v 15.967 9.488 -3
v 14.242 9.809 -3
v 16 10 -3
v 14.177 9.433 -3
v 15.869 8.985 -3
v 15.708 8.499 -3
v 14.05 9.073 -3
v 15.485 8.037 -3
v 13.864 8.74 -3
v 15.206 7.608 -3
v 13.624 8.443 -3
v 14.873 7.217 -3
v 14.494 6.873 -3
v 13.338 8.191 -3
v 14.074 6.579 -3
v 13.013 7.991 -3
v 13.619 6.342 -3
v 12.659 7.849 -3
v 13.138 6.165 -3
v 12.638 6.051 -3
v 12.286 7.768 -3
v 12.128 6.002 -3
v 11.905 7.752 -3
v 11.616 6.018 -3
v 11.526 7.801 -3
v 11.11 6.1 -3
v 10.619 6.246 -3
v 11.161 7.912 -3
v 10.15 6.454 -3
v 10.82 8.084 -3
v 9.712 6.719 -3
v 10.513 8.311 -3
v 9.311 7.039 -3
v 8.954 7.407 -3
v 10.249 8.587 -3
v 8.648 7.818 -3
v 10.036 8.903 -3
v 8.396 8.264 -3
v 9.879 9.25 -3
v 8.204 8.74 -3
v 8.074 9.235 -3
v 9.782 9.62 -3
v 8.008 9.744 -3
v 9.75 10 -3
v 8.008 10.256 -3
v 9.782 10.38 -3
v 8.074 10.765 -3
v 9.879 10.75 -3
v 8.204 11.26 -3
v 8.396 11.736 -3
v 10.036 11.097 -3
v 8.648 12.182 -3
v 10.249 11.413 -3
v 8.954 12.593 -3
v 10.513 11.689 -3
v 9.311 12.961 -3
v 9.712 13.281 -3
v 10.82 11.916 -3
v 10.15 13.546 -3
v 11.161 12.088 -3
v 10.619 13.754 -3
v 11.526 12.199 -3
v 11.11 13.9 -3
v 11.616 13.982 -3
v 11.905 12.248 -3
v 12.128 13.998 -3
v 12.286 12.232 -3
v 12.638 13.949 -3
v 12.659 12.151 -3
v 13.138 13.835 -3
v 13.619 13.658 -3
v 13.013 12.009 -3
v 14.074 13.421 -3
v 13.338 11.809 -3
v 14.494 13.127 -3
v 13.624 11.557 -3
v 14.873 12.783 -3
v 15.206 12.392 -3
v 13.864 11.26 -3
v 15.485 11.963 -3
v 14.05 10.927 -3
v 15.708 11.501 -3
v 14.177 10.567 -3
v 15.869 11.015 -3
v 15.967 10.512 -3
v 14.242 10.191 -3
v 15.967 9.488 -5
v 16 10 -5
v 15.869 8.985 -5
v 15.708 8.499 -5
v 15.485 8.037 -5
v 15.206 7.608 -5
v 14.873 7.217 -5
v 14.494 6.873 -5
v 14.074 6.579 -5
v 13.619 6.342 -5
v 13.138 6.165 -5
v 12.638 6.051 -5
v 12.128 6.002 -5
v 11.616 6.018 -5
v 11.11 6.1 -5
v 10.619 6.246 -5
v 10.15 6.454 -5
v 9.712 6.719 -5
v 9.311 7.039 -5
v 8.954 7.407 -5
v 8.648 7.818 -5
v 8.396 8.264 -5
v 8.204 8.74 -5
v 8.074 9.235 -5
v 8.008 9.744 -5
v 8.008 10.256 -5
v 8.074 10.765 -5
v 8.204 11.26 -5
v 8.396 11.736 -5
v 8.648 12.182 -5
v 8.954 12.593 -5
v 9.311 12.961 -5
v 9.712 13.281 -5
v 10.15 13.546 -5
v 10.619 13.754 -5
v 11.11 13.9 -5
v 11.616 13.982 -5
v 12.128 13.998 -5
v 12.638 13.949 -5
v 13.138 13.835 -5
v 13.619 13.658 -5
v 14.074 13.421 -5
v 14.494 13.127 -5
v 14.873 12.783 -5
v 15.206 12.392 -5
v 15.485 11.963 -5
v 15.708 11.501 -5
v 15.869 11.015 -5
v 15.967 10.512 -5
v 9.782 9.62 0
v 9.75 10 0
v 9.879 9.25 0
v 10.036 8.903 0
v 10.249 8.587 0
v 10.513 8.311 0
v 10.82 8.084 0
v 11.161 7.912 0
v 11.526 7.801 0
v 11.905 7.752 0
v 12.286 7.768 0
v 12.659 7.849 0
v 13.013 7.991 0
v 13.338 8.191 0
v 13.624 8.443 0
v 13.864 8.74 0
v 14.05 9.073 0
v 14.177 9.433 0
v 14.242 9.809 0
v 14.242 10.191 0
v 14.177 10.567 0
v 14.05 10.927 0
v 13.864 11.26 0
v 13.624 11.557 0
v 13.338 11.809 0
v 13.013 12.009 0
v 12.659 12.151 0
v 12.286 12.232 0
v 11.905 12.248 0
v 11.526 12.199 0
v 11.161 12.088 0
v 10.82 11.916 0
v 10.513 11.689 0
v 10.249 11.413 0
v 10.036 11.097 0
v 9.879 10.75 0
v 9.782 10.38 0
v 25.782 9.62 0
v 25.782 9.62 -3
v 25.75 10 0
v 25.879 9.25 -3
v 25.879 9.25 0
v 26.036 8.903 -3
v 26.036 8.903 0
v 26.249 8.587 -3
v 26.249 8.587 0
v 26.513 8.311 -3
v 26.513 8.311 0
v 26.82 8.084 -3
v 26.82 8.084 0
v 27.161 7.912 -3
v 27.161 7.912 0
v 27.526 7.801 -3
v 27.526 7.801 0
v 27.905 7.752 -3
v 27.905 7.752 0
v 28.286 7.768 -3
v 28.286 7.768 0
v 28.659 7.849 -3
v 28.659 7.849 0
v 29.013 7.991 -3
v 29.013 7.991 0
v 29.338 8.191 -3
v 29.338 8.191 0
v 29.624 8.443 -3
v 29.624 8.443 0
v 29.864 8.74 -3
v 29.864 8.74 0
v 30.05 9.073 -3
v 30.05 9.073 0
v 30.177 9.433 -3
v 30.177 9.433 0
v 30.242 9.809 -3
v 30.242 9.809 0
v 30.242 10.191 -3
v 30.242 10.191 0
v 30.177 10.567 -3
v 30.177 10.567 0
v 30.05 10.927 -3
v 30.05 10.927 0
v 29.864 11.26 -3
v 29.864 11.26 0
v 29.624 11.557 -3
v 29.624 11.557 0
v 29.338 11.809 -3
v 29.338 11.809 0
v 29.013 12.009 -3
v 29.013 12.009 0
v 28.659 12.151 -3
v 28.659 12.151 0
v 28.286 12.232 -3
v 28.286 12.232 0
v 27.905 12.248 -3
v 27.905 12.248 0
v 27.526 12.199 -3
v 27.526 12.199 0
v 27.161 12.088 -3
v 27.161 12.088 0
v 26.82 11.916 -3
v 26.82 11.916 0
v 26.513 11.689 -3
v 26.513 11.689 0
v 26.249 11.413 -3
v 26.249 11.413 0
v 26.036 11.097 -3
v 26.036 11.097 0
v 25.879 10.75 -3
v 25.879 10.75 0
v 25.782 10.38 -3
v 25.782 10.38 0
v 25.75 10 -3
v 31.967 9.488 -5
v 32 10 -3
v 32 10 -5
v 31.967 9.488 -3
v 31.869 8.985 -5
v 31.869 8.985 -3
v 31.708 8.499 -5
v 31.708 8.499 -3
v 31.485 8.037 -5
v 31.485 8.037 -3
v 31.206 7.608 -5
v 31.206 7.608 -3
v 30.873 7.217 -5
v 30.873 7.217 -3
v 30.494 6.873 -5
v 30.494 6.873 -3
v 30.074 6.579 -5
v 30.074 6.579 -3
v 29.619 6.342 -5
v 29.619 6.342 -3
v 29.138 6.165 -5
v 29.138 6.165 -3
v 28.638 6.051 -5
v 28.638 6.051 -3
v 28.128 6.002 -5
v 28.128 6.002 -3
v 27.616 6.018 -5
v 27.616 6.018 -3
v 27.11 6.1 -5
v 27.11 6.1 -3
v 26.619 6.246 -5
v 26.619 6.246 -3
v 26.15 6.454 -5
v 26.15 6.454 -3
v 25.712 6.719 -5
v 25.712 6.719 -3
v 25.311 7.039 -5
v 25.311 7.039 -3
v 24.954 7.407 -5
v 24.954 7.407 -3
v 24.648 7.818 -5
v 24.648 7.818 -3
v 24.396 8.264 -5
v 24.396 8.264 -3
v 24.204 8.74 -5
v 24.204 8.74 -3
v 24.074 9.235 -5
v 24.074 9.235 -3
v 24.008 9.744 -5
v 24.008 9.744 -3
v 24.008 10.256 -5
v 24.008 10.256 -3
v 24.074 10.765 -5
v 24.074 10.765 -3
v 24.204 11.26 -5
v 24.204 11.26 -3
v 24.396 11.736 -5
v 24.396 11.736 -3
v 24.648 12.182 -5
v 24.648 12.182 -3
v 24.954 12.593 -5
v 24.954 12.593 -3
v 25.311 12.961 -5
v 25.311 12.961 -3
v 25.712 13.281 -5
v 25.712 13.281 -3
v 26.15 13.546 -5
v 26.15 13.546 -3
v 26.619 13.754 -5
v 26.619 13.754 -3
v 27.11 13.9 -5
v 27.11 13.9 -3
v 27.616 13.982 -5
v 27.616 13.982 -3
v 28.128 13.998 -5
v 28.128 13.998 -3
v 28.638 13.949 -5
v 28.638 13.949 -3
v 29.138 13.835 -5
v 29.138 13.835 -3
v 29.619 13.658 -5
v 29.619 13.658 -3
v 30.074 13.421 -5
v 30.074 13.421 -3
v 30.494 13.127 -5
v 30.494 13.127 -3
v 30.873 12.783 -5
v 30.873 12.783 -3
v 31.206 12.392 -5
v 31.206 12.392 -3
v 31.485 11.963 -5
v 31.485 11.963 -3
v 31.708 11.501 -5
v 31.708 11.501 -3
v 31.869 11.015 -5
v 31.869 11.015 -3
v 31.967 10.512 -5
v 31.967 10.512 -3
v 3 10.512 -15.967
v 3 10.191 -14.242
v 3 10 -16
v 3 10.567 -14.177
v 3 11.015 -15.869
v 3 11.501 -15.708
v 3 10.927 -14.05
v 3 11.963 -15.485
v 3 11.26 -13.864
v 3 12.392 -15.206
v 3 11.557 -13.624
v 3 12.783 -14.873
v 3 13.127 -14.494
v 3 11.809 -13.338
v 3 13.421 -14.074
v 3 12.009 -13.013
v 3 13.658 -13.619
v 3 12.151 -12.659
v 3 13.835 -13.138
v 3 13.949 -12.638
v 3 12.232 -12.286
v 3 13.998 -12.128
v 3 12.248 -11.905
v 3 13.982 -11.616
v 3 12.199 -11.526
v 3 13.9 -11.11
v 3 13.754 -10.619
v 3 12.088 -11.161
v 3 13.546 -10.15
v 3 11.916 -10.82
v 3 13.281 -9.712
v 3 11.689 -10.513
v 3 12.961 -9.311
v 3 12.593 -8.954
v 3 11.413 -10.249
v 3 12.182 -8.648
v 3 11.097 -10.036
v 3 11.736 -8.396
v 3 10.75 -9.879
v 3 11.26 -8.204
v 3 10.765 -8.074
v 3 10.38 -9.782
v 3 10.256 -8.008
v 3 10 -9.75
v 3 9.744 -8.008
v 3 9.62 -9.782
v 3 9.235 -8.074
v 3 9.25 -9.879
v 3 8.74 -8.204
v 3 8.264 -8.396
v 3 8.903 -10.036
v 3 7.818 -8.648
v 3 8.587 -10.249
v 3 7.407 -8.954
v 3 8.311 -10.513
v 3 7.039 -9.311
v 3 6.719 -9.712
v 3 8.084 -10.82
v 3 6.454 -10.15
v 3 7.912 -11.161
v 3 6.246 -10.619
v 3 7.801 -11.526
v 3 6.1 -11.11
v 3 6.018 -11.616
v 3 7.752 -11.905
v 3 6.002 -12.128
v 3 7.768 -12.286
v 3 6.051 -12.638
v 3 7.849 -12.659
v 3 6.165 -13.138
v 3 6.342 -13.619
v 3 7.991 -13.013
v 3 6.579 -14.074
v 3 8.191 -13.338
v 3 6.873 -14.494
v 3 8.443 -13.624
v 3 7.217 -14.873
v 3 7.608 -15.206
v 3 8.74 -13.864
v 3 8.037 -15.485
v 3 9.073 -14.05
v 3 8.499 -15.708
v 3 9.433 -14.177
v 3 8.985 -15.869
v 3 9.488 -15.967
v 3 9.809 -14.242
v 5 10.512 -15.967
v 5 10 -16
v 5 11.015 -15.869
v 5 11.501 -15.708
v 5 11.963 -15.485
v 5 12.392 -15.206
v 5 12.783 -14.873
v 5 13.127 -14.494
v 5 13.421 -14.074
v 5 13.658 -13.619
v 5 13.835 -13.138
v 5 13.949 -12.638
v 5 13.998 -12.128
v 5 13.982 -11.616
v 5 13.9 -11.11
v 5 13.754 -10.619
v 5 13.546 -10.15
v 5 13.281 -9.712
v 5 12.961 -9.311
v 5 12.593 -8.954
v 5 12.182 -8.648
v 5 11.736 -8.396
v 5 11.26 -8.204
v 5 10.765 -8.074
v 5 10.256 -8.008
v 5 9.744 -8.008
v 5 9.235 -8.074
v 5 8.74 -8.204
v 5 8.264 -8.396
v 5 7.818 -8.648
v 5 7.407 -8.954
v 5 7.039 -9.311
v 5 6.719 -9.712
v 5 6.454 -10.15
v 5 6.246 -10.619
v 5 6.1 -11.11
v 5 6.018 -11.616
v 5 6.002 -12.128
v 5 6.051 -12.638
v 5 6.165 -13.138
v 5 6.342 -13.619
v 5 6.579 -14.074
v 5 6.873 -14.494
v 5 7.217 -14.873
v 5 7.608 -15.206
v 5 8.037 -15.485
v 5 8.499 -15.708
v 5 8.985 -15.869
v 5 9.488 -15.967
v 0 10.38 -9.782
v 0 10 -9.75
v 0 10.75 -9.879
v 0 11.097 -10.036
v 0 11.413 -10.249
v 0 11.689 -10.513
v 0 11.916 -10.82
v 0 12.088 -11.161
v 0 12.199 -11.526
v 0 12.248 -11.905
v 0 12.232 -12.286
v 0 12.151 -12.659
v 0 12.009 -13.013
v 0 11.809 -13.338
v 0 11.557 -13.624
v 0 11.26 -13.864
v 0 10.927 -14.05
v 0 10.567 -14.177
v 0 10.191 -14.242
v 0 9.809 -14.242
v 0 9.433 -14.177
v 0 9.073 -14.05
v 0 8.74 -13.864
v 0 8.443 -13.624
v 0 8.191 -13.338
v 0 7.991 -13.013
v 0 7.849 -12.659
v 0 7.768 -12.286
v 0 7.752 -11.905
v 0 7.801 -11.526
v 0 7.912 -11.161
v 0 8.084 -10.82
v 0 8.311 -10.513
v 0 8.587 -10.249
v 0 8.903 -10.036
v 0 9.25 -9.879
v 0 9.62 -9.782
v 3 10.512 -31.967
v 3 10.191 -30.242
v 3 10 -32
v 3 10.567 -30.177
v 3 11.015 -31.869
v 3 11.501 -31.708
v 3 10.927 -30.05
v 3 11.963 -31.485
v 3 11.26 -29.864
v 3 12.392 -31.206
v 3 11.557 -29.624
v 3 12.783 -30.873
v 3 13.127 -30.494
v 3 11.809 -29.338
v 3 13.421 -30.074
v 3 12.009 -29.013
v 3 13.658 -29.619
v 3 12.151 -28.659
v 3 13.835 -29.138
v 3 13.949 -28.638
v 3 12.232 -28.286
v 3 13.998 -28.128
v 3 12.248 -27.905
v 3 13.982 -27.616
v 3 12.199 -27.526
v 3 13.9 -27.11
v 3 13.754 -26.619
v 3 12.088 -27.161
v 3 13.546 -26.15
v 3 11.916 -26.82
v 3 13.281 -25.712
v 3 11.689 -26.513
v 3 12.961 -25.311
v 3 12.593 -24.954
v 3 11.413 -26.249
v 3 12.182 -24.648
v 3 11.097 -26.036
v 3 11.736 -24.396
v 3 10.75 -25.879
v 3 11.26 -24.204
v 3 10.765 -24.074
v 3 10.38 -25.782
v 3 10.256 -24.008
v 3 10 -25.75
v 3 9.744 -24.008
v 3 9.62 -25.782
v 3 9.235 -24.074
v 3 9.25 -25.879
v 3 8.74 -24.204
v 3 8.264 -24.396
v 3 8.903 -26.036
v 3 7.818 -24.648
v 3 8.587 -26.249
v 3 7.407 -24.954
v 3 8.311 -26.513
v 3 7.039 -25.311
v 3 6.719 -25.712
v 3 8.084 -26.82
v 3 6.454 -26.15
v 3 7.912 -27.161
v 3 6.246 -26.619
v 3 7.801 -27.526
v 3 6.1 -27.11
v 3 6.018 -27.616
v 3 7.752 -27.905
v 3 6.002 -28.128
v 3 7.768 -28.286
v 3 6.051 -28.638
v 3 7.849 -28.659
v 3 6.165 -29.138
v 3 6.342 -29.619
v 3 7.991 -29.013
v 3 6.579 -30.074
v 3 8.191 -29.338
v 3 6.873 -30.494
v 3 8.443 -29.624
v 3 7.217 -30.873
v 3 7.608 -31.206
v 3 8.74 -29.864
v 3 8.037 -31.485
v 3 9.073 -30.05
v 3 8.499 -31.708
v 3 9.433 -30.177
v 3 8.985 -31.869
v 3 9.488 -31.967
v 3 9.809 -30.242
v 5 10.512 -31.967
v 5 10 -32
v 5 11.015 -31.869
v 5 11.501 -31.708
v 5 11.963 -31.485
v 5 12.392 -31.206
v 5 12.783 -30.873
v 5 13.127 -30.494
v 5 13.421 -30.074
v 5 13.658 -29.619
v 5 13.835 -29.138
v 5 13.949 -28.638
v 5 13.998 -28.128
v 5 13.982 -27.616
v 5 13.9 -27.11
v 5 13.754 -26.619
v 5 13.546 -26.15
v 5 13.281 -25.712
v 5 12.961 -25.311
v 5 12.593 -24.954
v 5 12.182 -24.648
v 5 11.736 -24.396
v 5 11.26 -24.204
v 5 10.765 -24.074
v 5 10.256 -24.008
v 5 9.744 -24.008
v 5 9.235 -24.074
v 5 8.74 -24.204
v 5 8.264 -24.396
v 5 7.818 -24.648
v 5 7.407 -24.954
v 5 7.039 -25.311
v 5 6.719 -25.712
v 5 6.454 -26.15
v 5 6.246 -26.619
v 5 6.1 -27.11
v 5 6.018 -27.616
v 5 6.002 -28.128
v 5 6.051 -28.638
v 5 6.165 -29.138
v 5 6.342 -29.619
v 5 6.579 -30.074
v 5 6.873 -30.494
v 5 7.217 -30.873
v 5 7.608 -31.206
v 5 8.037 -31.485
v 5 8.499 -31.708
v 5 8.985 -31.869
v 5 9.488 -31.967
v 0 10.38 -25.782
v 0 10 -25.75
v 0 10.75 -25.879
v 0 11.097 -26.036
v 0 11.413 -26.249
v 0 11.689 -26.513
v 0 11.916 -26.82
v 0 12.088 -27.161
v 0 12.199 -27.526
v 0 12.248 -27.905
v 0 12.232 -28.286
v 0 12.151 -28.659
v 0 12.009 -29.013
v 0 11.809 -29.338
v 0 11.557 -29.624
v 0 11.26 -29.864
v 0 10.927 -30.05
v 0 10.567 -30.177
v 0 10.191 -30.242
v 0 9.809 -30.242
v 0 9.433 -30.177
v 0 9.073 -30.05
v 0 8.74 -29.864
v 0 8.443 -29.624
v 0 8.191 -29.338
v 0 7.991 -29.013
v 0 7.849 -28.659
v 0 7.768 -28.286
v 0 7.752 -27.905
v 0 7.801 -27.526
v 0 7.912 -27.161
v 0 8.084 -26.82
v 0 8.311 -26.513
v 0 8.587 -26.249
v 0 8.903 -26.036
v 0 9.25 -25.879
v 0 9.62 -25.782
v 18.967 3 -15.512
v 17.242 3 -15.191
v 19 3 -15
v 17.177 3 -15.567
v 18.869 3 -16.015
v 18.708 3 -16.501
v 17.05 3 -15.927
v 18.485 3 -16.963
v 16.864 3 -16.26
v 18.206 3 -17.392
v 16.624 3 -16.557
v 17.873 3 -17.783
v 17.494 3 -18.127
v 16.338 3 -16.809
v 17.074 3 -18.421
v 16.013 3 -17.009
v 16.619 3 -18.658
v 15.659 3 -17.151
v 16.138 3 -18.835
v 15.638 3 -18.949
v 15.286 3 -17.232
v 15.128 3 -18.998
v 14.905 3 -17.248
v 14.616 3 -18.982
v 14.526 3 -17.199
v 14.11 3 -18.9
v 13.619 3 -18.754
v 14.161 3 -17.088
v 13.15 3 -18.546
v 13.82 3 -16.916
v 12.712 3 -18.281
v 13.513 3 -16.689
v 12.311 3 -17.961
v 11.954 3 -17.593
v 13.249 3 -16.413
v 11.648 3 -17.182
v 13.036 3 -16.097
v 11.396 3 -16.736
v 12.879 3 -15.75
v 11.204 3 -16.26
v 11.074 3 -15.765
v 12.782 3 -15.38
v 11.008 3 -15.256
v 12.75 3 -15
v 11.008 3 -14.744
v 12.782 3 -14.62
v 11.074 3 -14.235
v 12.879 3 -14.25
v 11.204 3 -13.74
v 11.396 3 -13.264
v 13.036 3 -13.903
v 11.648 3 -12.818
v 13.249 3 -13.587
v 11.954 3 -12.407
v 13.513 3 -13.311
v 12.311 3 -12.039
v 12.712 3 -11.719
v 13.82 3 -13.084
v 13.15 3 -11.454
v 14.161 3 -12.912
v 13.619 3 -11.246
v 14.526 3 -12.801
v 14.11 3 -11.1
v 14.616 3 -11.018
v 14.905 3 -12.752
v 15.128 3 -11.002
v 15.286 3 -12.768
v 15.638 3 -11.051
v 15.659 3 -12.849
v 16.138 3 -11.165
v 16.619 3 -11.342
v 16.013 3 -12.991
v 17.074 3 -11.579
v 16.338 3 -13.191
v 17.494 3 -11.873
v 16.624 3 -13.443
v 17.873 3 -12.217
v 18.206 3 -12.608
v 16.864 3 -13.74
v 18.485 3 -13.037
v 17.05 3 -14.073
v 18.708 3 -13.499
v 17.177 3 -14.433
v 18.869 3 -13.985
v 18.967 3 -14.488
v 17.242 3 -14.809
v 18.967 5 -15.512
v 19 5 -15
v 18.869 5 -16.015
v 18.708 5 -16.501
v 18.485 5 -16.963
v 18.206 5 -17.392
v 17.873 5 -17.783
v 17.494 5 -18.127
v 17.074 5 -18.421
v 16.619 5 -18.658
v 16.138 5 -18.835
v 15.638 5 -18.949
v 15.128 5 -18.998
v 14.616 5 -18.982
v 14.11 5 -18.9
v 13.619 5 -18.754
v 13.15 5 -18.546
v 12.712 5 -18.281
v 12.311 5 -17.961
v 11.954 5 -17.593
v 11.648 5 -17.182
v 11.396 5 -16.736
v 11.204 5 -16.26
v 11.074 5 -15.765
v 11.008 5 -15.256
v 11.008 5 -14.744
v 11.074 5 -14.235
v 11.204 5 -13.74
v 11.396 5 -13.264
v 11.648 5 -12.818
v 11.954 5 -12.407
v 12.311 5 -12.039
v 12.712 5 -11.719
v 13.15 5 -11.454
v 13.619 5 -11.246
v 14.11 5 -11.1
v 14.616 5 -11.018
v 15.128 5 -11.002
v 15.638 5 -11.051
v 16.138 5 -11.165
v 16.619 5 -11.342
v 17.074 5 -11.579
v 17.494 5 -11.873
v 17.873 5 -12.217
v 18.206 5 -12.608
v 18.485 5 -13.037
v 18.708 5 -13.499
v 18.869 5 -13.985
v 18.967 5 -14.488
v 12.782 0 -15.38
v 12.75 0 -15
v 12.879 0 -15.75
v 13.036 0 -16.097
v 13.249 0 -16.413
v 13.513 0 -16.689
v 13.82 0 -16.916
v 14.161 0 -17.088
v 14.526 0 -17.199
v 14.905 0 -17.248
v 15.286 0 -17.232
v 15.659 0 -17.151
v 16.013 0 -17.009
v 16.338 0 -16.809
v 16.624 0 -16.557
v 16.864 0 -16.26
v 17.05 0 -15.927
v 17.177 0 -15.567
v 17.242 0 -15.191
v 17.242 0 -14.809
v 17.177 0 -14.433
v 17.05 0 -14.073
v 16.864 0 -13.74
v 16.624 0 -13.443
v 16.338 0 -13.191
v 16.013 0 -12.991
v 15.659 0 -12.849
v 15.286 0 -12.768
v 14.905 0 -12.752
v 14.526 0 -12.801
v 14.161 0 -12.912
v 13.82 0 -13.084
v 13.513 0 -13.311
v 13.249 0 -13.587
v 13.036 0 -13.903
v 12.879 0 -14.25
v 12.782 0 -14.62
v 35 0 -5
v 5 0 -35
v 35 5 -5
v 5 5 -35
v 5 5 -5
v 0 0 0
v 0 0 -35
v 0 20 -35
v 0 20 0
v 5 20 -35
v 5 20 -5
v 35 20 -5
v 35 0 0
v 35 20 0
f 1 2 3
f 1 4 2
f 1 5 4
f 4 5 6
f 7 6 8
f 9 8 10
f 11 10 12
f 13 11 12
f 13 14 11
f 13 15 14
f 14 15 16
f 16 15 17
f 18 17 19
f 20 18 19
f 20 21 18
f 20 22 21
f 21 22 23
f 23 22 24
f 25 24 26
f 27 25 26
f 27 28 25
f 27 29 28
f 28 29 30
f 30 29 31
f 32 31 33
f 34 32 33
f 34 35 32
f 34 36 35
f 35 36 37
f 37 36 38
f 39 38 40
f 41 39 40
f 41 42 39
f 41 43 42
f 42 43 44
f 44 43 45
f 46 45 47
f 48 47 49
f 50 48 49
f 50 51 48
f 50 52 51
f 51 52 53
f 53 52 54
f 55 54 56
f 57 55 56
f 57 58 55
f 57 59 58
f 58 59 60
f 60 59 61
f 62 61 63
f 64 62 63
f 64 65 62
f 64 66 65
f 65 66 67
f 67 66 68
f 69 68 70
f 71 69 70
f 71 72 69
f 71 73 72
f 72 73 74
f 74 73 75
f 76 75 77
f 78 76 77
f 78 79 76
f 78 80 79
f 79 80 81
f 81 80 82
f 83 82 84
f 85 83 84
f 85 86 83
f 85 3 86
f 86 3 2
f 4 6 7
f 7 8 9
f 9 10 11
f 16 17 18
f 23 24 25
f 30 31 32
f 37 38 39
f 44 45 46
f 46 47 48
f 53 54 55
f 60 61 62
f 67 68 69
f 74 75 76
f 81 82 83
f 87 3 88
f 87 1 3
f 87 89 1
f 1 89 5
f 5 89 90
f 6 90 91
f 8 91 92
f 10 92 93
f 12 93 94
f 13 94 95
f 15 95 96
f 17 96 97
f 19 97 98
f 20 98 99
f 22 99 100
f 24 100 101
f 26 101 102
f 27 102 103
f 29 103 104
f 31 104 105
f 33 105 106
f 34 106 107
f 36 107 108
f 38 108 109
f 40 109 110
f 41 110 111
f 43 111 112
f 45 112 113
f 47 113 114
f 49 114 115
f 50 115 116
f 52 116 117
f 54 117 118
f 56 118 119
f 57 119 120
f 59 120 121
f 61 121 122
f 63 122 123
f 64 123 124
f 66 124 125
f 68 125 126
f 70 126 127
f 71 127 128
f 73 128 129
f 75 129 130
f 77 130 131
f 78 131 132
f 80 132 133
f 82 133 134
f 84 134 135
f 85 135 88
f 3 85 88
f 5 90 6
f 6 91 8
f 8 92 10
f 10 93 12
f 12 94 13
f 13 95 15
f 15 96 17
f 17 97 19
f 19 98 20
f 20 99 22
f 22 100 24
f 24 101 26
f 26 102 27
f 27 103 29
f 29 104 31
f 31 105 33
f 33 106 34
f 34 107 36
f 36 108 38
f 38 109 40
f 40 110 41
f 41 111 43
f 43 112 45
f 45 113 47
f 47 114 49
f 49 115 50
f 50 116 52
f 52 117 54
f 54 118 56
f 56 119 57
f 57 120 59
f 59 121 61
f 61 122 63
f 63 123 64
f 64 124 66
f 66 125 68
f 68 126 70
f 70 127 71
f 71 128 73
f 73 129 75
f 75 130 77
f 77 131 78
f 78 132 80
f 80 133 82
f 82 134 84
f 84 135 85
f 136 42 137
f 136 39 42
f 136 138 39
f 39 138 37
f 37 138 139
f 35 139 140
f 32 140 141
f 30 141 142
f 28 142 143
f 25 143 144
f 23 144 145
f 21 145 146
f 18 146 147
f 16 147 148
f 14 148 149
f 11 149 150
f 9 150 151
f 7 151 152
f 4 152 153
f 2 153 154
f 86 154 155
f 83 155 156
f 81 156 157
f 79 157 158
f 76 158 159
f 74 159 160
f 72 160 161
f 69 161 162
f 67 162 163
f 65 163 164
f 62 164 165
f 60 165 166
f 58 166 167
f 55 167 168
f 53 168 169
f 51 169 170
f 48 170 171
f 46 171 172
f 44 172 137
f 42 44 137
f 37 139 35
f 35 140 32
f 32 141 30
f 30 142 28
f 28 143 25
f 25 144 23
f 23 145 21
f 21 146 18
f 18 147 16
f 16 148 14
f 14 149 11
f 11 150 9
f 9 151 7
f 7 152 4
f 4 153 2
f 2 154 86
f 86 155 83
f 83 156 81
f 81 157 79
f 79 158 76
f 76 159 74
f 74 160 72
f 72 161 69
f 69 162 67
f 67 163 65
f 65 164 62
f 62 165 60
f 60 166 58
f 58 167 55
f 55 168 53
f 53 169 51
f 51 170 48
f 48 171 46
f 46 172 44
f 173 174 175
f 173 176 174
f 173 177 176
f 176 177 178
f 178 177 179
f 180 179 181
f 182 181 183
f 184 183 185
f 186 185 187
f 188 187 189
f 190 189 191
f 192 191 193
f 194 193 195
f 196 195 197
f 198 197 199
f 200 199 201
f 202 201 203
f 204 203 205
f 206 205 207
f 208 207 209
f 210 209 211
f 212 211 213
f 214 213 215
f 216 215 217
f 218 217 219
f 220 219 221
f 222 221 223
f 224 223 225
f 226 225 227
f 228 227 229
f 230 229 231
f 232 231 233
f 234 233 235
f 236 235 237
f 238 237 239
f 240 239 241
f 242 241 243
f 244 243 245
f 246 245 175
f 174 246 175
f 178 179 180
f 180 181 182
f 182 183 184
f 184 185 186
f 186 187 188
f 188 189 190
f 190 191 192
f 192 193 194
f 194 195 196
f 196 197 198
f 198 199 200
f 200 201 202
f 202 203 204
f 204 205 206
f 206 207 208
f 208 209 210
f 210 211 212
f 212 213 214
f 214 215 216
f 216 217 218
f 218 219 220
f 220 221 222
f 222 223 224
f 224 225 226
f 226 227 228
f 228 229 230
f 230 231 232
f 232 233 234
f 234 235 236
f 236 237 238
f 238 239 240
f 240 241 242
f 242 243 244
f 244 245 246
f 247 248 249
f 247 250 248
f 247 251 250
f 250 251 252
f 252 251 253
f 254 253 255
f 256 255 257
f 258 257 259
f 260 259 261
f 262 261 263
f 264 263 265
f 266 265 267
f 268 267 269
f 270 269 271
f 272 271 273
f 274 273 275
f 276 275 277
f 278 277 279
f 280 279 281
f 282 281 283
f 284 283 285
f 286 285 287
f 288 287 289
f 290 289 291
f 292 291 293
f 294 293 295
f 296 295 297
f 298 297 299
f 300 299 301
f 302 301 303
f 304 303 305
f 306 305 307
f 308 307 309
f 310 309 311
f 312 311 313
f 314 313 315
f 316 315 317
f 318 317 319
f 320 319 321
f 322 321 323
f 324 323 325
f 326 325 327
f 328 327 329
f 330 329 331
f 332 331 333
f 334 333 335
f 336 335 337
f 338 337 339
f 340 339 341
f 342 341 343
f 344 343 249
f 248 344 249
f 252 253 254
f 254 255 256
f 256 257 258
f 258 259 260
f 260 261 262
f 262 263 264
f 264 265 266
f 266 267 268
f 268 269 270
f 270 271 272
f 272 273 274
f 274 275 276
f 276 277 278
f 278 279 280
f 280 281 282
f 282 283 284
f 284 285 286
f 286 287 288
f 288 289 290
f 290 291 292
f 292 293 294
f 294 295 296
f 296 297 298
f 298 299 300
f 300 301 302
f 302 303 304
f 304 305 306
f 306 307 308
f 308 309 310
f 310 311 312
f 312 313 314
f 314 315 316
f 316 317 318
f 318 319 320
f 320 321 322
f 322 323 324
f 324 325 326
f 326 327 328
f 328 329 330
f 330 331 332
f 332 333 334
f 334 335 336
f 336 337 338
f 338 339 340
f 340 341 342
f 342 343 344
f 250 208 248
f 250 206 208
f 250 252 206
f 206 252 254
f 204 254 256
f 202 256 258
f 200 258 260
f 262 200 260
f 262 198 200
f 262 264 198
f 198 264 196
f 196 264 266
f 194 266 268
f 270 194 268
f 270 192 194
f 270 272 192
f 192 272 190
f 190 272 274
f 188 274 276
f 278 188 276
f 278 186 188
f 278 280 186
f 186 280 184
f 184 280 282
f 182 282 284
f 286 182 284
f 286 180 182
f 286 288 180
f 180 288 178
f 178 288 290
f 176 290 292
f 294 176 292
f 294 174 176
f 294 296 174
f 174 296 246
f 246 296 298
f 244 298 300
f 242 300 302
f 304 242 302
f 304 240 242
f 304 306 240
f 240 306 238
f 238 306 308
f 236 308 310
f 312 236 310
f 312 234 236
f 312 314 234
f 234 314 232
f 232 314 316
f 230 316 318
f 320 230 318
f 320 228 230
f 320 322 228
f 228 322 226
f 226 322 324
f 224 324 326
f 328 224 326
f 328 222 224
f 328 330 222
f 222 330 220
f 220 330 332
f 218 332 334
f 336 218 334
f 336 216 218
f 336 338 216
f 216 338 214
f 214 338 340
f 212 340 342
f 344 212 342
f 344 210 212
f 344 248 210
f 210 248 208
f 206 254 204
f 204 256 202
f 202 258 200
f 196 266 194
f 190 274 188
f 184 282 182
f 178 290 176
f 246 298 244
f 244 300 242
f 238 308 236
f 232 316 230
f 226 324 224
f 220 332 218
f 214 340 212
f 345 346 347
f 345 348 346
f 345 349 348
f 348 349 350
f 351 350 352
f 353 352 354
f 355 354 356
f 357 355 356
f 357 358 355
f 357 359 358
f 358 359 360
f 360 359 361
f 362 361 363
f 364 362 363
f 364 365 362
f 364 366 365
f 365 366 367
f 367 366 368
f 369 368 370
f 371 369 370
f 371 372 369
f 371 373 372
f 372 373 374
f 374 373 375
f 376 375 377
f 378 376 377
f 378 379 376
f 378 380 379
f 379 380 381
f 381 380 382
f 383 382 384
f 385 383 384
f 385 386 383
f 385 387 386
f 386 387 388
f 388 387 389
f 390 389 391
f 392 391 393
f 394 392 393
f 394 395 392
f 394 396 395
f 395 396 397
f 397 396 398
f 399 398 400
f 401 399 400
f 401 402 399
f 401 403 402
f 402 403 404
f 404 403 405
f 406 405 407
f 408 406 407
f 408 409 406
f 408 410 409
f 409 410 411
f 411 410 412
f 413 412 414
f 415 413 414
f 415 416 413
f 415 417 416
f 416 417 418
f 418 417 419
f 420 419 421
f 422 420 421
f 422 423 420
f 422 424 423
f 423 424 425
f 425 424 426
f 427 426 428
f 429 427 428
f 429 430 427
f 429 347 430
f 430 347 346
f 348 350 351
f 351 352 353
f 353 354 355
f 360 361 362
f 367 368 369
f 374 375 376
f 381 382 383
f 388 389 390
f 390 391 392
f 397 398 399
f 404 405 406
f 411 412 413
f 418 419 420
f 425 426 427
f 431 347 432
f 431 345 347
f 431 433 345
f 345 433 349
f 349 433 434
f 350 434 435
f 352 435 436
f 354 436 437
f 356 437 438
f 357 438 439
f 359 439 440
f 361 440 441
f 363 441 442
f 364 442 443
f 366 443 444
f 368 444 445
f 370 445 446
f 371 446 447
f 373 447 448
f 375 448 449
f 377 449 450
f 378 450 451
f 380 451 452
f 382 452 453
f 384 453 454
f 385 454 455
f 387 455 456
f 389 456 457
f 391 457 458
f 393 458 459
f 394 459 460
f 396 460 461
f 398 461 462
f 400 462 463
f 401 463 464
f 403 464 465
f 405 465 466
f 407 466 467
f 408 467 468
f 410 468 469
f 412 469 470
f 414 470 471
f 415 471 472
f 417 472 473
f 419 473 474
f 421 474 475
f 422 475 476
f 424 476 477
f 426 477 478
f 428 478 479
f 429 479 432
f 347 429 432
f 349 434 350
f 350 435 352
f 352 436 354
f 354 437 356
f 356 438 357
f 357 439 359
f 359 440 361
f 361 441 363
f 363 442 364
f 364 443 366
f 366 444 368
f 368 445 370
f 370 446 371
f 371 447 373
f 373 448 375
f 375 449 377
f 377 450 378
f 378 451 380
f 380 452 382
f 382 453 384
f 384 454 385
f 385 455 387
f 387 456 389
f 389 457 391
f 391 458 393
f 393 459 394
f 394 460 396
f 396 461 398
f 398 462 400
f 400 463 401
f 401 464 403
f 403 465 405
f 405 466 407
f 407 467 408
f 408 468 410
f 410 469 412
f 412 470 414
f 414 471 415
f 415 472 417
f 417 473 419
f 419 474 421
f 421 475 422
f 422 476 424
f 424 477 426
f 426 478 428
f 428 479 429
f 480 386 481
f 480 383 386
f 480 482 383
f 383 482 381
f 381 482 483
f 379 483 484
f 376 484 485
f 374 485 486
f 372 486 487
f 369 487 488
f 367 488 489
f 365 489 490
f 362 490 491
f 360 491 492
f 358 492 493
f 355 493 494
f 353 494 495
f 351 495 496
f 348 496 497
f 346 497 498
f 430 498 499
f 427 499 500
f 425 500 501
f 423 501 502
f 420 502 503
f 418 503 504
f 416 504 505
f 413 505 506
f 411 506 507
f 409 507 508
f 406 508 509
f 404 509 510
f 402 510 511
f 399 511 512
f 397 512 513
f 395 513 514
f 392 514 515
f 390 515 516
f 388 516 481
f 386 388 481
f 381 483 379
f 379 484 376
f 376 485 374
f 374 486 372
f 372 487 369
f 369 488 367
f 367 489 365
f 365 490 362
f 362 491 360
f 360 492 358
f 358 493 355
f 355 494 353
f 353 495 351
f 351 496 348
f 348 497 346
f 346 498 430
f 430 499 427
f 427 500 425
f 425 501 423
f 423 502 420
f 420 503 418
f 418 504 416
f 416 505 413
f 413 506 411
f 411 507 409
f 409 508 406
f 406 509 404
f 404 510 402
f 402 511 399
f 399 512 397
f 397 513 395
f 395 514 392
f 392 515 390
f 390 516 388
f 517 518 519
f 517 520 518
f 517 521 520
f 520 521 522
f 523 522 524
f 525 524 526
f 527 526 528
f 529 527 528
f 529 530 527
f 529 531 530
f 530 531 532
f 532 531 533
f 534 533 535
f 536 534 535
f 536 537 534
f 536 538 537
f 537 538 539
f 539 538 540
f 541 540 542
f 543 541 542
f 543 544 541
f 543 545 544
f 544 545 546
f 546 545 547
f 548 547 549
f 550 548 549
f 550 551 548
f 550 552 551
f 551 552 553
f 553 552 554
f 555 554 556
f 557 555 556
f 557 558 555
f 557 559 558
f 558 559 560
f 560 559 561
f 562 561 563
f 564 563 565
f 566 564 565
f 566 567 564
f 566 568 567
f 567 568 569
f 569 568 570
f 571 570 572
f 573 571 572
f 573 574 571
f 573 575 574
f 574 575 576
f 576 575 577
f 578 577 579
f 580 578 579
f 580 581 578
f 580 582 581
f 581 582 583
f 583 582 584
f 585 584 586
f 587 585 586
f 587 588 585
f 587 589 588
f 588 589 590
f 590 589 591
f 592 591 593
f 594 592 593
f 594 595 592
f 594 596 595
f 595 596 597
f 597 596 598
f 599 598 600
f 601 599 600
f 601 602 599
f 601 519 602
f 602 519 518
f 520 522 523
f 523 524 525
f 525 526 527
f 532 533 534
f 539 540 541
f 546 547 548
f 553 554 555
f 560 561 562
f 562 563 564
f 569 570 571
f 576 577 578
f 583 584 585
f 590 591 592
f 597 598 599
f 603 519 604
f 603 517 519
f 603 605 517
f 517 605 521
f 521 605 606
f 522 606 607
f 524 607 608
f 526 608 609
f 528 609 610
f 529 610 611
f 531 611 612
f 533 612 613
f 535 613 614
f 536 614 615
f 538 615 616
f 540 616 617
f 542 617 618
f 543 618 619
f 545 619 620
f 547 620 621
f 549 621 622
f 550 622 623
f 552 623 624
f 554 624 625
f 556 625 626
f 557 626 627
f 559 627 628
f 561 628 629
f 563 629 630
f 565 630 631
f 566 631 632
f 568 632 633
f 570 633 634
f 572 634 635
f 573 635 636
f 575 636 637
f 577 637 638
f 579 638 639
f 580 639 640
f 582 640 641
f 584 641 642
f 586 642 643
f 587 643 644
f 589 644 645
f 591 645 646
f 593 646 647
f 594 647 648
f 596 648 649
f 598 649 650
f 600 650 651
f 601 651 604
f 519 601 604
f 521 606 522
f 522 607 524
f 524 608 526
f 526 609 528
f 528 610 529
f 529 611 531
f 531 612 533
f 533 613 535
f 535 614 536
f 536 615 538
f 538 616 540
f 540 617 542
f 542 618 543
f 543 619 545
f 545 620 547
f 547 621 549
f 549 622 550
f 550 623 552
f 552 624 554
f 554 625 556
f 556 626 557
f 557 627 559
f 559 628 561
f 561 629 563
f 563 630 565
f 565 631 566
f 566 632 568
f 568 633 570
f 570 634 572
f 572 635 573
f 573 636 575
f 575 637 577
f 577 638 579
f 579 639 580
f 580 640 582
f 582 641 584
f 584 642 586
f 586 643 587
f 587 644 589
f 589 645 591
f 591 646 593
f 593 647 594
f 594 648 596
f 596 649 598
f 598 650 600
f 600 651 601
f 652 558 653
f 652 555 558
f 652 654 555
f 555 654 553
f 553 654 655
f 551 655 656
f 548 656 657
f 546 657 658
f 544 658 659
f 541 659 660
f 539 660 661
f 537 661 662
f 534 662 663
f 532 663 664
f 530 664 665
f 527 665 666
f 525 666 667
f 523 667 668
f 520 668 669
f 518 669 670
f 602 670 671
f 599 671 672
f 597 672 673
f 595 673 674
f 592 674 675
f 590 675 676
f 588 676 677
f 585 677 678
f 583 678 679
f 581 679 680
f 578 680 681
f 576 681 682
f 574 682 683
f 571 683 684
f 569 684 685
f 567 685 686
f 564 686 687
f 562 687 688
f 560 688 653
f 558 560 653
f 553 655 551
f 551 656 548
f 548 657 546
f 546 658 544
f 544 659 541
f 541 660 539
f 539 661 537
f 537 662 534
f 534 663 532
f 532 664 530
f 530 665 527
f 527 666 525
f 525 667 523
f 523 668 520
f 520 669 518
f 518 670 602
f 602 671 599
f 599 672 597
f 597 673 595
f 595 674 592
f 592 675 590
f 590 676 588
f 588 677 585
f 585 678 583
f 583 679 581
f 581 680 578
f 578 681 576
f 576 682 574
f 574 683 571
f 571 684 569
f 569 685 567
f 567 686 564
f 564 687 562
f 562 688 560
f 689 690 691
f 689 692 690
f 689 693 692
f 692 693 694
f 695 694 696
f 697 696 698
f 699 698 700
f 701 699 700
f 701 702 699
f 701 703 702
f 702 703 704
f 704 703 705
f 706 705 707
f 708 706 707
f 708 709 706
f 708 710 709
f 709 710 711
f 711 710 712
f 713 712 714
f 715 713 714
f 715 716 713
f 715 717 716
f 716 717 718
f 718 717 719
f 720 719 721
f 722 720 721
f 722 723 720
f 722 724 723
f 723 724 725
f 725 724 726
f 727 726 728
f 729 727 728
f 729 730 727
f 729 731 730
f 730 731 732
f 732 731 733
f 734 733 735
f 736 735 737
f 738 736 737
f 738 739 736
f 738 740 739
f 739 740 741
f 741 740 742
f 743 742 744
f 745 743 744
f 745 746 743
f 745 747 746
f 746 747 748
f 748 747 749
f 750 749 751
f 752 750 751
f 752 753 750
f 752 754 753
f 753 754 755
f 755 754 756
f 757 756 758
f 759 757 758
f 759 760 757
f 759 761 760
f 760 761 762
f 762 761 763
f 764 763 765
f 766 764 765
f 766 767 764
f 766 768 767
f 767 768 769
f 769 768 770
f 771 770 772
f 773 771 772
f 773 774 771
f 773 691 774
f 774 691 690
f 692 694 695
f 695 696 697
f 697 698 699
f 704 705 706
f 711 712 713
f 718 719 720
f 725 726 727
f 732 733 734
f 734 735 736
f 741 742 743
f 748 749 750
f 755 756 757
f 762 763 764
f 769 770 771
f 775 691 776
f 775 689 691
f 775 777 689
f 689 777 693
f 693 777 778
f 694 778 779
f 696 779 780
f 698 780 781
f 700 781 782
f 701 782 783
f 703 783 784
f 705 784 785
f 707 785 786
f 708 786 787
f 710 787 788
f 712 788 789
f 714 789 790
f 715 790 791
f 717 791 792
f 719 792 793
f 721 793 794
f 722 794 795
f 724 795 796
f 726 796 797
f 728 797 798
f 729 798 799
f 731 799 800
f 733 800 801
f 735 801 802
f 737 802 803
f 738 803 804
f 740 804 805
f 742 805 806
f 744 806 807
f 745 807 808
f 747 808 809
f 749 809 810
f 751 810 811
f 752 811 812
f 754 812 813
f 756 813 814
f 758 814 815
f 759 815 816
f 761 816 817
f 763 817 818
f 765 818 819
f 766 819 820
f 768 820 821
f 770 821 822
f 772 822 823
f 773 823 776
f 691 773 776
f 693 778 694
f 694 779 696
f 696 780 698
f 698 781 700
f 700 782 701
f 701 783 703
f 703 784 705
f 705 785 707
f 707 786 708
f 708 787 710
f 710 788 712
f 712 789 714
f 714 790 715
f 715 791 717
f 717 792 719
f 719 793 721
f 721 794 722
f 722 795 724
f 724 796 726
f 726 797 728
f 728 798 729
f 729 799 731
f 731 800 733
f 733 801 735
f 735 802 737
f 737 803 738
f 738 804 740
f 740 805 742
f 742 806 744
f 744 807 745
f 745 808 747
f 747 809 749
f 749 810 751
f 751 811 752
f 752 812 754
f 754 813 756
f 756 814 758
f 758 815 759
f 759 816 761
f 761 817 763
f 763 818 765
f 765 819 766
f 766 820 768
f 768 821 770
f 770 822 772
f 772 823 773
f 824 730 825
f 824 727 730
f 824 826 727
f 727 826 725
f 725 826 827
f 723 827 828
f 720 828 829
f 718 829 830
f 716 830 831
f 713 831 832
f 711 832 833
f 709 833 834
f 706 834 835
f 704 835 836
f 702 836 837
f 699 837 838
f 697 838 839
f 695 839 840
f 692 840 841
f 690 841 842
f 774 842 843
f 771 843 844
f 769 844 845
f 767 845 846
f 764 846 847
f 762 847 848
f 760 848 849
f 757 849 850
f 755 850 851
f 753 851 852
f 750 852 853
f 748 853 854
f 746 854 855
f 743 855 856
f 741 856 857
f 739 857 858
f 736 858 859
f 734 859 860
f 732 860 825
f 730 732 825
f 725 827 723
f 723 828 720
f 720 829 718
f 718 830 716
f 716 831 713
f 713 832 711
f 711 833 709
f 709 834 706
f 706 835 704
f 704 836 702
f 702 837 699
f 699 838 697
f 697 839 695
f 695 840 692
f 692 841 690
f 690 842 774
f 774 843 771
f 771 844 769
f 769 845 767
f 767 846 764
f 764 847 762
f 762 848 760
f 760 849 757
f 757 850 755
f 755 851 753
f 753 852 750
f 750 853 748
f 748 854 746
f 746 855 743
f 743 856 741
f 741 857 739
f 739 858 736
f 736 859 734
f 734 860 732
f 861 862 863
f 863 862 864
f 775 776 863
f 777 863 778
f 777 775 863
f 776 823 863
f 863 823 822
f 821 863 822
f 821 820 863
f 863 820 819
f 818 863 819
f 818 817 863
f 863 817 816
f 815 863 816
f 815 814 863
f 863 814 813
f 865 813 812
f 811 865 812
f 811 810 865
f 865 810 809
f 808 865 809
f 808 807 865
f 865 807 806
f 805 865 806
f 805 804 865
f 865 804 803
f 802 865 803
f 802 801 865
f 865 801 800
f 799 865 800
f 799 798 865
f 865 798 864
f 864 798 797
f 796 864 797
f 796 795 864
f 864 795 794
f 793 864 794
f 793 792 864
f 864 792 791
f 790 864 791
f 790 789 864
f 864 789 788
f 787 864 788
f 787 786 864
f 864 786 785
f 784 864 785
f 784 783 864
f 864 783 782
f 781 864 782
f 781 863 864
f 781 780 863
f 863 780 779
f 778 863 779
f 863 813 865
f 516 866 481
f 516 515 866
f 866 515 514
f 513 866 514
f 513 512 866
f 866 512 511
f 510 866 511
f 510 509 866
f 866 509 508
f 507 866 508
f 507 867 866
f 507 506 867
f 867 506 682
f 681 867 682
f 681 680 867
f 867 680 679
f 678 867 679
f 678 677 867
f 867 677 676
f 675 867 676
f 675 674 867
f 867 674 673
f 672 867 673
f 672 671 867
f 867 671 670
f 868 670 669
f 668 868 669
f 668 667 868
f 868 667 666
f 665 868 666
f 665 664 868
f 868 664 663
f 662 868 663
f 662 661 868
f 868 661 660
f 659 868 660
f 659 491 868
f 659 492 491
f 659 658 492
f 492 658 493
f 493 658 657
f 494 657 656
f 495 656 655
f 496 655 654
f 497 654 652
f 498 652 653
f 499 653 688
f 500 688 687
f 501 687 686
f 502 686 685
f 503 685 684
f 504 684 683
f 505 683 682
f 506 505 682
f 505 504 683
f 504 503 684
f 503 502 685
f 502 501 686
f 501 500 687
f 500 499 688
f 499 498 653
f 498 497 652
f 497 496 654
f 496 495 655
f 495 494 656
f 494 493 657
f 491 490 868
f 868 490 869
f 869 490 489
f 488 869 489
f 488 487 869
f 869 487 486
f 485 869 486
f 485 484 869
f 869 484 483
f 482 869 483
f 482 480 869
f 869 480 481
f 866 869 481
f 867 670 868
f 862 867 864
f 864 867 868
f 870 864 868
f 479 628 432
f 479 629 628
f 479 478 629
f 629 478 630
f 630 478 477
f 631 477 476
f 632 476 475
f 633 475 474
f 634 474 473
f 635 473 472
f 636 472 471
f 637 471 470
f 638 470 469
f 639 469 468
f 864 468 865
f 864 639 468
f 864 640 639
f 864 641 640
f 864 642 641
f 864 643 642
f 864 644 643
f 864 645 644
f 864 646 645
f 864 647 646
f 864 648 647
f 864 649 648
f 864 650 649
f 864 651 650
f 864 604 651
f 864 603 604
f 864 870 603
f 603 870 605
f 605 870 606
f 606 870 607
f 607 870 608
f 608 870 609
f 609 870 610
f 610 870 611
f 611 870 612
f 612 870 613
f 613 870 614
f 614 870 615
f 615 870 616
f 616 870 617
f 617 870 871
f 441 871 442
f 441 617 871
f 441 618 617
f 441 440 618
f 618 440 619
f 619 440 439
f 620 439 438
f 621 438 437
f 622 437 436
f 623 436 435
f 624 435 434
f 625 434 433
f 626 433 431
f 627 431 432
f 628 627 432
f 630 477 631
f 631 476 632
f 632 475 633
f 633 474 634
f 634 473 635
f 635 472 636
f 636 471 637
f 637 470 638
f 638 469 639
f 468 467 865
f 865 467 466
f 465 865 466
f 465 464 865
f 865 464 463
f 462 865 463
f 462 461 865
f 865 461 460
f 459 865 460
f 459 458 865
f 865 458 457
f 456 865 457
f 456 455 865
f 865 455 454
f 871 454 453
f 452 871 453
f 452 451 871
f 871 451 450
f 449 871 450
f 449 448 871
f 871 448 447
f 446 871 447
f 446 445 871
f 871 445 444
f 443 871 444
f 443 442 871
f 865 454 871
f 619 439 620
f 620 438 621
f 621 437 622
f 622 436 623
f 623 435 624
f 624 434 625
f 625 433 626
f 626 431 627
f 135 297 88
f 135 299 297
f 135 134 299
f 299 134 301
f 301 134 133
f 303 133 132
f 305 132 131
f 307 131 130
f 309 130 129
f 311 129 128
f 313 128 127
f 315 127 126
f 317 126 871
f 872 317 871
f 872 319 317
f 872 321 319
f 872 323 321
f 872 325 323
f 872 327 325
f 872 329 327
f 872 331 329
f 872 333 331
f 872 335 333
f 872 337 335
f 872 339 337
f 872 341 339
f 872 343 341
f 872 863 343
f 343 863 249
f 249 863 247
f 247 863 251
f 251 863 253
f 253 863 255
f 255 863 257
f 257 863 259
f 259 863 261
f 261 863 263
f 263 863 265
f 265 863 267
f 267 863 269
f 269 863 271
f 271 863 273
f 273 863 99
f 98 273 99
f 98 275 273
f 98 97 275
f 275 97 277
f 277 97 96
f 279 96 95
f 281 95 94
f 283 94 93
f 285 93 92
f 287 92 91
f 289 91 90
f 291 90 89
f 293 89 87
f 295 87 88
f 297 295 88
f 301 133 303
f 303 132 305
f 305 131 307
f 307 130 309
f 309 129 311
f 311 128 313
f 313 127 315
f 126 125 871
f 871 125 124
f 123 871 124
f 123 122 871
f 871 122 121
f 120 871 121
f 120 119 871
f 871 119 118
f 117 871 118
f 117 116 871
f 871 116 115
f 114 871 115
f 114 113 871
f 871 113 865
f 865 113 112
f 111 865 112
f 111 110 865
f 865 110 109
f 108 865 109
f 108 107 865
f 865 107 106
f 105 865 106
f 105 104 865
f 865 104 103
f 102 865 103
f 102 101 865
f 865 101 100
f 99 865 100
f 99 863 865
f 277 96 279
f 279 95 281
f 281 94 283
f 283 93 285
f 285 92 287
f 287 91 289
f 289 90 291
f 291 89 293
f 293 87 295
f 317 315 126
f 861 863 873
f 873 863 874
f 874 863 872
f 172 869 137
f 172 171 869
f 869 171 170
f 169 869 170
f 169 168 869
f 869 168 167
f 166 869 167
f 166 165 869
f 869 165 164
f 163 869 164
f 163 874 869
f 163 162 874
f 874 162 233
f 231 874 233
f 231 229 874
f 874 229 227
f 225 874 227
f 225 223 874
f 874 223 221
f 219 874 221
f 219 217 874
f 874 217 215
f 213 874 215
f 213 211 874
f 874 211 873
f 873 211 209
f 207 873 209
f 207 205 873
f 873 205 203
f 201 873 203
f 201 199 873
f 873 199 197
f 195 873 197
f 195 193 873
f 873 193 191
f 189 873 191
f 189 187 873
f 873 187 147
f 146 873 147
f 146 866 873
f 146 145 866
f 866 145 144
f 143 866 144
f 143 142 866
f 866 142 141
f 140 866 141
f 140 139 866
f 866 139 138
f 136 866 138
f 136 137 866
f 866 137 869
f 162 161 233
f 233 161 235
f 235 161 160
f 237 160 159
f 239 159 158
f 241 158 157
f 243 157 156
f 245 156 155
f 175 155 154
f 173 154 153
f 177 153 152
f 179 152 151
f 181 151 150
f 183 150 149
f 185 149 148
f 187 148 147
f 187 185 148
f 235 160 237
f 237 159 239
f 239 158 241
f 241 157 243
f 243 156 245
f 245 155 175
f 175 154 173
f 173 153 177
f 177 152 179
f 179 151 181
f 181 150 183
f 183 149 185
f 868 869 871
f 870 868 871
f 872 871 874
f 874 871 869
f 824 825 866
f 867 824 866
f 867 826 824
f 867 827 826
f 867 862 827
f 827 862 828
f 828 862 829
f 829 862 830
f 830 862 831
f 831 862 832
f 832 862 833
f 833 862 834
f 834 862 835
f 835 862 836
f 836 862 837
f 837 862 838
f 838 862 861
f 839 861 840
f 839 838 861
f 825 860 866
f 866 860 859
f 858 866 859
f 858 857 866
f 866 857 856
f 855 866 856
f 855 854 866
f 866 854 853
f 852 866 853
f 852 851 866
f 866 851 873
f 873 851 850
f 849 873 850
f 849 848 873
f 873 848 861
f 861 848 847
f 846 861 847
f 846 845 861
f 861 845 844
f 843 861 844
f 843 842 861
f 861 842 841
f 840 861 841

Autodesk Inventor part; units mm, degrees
ref_plane "YZ Plane" through (0, 0, 0) normal (1, 0, 0) x (0, 1, 0)
ref_plane "XZ Plane" through (0, 0, 0) normal (0, 1, 0) x (-1, 0, 0)
ref_plane "XY Plane" through (0, 0, 0) normal (0, 0, 1) x (1, 0, 0)
sketch "Sketch1" plane through (0, 0, 0) normal (0, 1, 0) x (-1, 0, 0)
  line L0 (0, 0) -> (-35, 0)
  line L1 (-35, 0) -> (-35, -5)
  line L2 (-5, -35) -> (0, -35)
  line L3 (0, -35) -> (0, 0)
  line L4 (-5, -5) -> (-35, -5)
  line L5 (-5, -35) -> (-5, -5)
  line L6 (-35, -5) -> (-5, -35)
  point P0 (-15, -15)
  dimension "d2" = 5
  dimension "d3" = 5
  dimension "d4" = 10
  dimension "d5" = 10
  dimension "d6" = 35
  dimension "d7" = 35
extrude "Extrusion1" add sketch "Sketch1" along normal blind 20 contours L3 L2 L5 L4 L1 L0
extrude "Extrusion2" add sketch "Sketch1" along normal blind 5 contours L4 L5 L6
sketch "Sketch2" plane through (5, 20, -5) normal (1, 0, 0) x (0, 0, -1)
  point P0 (-5, -20)
ref_plane "Work Plane1" through (5, 20, -5) normal (0.7071, 0, 0.7071) x (0, -1, 0)
sketch "Sketch3" plane through (5, 20, -5) normal (1, 0, 0) x (0, 0, -1)
  line L0 (0, 0) -> (30, 0) projected
  line L1 (0, -15) -> (0, 0) projected
  line L2 (30, -15) -> (30, 0) projected
  point P0 (-5, -20)
  point P1 (7, -10)
  point P2 (23, -10)
  dimension "d12" = 10
  dimension "d13" = 7
  dimension "d14" = 7
  dimension "d15" = 10
sketch "Sketch4" plane through (0, 5, 0) normal (0, 1, 0) x (1, 0, 0)
  point P0 (0, 0)
  point P1 (15, 15)
hole "Hole1" at (15, 5, -15) direction (0, -1, 0) diameter 4.5 end through all counterbore diameter 8 counterbore depth 2
hole "Hole2" at (5, 10, -12) at (5, 10, -28) direction (-1, 0, 0) diameter 4.5 end through all counterbore diameter 8 counterbore depth 2
mirror "Mirror1" about plane through (5, 20, -5) normal (0.7071, 0, 0.7071) of "Hole2"
equation "\"d5\" = d4"
equation "\"d15\" = d12"
properties part number "angle_90_profile_2020"
